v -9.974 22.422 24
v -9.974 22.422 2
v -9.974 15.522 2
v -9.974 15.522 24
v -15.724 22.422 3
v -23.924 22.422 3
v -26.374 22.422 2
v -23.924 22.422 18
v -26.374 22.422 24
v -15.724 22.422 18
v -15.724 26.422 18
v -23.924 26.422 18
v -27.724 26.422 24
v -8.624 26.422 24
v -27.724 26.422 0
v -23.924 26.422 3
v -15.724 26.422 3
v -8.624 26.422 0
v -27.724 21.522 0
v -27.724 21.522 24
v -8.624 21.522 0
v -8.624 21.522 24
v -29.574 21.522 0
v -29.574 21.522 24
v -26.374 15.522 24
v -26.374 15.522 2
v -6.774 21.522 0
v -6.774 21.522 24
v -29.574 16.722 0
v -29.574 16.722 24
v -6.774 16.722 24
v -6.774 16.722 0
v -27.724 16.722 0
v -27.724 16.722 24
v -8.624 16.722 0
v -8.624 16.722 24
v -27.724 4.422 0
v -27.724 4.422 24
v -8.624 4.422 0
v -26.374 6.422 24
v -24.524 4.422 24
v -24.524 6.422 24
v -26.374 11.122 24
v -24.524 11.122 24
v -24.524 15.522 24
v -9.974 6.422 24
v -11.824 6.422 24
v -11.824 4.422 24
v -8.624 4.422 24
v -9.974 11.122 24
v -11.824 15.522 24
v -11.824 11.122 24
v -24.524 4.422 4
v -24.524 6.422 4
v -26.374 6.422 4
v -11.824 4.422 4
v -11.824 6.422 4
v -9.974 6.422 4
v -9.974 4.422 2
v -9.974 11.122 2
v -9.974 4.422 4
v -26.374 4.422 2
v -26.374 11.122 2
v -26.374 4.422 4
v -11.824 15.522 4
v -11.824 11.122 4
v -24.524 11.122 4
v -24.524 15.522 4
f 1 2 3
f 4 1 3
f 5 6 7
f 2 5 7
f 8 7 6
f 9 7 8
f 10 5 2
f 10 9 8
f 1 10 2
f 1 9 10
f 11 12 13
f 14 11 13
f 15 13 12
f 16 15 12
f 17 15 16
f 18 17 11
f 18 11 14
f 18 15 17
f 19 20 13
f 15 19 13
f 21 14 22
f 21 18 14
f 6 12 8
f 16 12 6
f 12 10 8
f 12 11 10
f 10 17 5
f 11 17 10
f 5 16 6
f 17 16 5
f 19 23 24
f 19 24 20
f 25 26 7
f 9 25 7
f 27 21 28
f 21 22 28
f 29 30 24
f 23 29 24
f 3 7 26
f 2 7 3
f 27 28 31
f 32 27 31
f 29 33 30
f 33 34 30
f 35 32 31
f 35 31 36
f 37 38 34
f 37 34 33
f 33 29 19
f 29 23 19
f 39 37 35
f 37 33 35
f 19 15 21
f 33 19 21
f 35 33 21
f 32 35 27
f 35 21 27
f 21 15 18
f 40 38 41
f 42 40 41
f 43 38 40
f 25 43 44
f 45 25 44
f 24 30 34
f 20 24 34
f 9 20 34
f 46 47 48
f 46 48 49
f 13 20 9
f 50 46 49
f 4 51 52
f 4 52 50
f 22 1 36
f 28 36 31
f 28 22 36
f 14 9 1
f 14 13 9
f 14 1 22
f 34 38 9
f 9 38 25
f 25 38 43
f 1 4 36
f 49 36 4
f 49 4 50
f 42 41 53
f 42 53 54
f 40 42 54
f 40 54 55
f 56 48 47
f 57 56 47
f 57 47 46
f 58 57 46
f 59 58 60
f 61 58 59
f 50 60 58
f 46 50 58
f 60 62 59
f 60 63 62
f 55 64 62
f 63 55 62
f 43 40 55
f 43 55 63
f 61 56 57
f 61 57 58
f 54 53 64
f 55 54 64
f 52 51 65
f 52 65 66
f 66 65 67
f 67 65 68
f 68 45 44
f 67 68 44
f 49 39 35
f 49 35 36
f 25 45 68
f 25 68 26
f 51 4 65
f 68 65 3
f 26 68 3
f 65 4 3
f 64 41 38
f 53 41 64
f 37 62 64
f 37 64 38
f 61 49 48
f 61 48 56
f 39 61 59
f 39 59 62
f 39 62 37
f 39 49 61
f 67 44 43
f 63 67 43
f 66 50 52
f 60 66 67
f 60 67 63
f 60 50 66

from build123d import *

# Parameters (mm, degrees)
SKETCH_W        = 19.1
SKETCH_H        = 22
PAD_DEPTH       = 24
SKETCH001_W     = 22.8
SKETCH001_H     = 4.8
PAD001_DEPTH    = 24
SKETCH002_W     = 16.4
SKETCH002_H     = 18
POCKET_DEPTH    = 22
SKETCH003_W     = 8.2
SKETCH003_H     = 15
POCKET001_DEPTH = 5
SKETCH004_W     = 1.85
SKETCH004_H     = 2
SKETCH004_H_2   = 4.4
PAD002_DEPTH    = 20
SKETCH005_W     = 19.1
SKETCH005_H     = 4.4
PAD003_DEPTH    = 4


with BuildPart() as part:
    # Sketch → Pad (new body)
    with BuildSketch(Plane.XY):
        with Locations((-18.174118, 15.421817)):
            Rectangle(SKETCH_W, SKETCH_H)
    extrude(amount=PAD_DEPTH)

    # Sketch001 → Pad001 (new body)
    with BuildSketch(Plane.XY.offset(24)):
        with Locations((-18.174118, 19.121817)):
            Rectangle(SKETCH001_W, SKETCH001_H)
    extrude(amount=-PAD001_DEPTH)

    # Sketch002 → Pocket (cut)
    with BuildSketch(Plane.XY.offset(24)):
        with Locations((-18.174118, 13.421817)):
            Rectangle(SKETCH002_W, SKETCH002_H)
    extrude(amount=-POCKET_DEPTH, mode=Mode.SUBTRACT)

    # Sketch003 → Pocket001 (cut)
    with BuildSketch(Plane(origin=(0, 26.421817, 0), x_dir=(-1, 0, 0), z_dir=(0, 1, 0))):
        with Locations((19.824118, 10.5)):
            Rectangle(SKETCH003_W, SKETCH003_H)
    extrude(amount=-POCKET001_DEPTH, mode=Mode.SUBTRACT)

    # Sketch004 → Pad002 (new body)
    with BuildSketch(Plane.XY.offset(24)):
        with Locations((-25.449118, 5.421817)):
            Rectangle(SKETCH004_W, SKETCH004_H)
        with Locations((-10.899118, 5.421817)):
            Rectangle(SKETCH004_W, SKETCH004_H)
        with Locations((-25.449118, 13.321817)):
            Rectangle(SKETCH004_W, SKETCH004_H_2)
        with Locations((-10.899118, 13.321817)):
            Rectangle(SKETCH004_W, SKETCH004_H_2)
    extrude(amount=-PAD002_DEPTH)

    # Sketch005 → Pad003 (new body)
    with BuildSketch(Plane(origin=(0, 0, 0), x_dir=(1, 0, 0), z_dir=(0, 0, -1))):
        with Locations((-18.174118, -13.321817)):
            Rectangle(SKETCH005_W, SKETCH005_H)
    extrude(amount=-PAD003_DEPTH)


solid = part.part
